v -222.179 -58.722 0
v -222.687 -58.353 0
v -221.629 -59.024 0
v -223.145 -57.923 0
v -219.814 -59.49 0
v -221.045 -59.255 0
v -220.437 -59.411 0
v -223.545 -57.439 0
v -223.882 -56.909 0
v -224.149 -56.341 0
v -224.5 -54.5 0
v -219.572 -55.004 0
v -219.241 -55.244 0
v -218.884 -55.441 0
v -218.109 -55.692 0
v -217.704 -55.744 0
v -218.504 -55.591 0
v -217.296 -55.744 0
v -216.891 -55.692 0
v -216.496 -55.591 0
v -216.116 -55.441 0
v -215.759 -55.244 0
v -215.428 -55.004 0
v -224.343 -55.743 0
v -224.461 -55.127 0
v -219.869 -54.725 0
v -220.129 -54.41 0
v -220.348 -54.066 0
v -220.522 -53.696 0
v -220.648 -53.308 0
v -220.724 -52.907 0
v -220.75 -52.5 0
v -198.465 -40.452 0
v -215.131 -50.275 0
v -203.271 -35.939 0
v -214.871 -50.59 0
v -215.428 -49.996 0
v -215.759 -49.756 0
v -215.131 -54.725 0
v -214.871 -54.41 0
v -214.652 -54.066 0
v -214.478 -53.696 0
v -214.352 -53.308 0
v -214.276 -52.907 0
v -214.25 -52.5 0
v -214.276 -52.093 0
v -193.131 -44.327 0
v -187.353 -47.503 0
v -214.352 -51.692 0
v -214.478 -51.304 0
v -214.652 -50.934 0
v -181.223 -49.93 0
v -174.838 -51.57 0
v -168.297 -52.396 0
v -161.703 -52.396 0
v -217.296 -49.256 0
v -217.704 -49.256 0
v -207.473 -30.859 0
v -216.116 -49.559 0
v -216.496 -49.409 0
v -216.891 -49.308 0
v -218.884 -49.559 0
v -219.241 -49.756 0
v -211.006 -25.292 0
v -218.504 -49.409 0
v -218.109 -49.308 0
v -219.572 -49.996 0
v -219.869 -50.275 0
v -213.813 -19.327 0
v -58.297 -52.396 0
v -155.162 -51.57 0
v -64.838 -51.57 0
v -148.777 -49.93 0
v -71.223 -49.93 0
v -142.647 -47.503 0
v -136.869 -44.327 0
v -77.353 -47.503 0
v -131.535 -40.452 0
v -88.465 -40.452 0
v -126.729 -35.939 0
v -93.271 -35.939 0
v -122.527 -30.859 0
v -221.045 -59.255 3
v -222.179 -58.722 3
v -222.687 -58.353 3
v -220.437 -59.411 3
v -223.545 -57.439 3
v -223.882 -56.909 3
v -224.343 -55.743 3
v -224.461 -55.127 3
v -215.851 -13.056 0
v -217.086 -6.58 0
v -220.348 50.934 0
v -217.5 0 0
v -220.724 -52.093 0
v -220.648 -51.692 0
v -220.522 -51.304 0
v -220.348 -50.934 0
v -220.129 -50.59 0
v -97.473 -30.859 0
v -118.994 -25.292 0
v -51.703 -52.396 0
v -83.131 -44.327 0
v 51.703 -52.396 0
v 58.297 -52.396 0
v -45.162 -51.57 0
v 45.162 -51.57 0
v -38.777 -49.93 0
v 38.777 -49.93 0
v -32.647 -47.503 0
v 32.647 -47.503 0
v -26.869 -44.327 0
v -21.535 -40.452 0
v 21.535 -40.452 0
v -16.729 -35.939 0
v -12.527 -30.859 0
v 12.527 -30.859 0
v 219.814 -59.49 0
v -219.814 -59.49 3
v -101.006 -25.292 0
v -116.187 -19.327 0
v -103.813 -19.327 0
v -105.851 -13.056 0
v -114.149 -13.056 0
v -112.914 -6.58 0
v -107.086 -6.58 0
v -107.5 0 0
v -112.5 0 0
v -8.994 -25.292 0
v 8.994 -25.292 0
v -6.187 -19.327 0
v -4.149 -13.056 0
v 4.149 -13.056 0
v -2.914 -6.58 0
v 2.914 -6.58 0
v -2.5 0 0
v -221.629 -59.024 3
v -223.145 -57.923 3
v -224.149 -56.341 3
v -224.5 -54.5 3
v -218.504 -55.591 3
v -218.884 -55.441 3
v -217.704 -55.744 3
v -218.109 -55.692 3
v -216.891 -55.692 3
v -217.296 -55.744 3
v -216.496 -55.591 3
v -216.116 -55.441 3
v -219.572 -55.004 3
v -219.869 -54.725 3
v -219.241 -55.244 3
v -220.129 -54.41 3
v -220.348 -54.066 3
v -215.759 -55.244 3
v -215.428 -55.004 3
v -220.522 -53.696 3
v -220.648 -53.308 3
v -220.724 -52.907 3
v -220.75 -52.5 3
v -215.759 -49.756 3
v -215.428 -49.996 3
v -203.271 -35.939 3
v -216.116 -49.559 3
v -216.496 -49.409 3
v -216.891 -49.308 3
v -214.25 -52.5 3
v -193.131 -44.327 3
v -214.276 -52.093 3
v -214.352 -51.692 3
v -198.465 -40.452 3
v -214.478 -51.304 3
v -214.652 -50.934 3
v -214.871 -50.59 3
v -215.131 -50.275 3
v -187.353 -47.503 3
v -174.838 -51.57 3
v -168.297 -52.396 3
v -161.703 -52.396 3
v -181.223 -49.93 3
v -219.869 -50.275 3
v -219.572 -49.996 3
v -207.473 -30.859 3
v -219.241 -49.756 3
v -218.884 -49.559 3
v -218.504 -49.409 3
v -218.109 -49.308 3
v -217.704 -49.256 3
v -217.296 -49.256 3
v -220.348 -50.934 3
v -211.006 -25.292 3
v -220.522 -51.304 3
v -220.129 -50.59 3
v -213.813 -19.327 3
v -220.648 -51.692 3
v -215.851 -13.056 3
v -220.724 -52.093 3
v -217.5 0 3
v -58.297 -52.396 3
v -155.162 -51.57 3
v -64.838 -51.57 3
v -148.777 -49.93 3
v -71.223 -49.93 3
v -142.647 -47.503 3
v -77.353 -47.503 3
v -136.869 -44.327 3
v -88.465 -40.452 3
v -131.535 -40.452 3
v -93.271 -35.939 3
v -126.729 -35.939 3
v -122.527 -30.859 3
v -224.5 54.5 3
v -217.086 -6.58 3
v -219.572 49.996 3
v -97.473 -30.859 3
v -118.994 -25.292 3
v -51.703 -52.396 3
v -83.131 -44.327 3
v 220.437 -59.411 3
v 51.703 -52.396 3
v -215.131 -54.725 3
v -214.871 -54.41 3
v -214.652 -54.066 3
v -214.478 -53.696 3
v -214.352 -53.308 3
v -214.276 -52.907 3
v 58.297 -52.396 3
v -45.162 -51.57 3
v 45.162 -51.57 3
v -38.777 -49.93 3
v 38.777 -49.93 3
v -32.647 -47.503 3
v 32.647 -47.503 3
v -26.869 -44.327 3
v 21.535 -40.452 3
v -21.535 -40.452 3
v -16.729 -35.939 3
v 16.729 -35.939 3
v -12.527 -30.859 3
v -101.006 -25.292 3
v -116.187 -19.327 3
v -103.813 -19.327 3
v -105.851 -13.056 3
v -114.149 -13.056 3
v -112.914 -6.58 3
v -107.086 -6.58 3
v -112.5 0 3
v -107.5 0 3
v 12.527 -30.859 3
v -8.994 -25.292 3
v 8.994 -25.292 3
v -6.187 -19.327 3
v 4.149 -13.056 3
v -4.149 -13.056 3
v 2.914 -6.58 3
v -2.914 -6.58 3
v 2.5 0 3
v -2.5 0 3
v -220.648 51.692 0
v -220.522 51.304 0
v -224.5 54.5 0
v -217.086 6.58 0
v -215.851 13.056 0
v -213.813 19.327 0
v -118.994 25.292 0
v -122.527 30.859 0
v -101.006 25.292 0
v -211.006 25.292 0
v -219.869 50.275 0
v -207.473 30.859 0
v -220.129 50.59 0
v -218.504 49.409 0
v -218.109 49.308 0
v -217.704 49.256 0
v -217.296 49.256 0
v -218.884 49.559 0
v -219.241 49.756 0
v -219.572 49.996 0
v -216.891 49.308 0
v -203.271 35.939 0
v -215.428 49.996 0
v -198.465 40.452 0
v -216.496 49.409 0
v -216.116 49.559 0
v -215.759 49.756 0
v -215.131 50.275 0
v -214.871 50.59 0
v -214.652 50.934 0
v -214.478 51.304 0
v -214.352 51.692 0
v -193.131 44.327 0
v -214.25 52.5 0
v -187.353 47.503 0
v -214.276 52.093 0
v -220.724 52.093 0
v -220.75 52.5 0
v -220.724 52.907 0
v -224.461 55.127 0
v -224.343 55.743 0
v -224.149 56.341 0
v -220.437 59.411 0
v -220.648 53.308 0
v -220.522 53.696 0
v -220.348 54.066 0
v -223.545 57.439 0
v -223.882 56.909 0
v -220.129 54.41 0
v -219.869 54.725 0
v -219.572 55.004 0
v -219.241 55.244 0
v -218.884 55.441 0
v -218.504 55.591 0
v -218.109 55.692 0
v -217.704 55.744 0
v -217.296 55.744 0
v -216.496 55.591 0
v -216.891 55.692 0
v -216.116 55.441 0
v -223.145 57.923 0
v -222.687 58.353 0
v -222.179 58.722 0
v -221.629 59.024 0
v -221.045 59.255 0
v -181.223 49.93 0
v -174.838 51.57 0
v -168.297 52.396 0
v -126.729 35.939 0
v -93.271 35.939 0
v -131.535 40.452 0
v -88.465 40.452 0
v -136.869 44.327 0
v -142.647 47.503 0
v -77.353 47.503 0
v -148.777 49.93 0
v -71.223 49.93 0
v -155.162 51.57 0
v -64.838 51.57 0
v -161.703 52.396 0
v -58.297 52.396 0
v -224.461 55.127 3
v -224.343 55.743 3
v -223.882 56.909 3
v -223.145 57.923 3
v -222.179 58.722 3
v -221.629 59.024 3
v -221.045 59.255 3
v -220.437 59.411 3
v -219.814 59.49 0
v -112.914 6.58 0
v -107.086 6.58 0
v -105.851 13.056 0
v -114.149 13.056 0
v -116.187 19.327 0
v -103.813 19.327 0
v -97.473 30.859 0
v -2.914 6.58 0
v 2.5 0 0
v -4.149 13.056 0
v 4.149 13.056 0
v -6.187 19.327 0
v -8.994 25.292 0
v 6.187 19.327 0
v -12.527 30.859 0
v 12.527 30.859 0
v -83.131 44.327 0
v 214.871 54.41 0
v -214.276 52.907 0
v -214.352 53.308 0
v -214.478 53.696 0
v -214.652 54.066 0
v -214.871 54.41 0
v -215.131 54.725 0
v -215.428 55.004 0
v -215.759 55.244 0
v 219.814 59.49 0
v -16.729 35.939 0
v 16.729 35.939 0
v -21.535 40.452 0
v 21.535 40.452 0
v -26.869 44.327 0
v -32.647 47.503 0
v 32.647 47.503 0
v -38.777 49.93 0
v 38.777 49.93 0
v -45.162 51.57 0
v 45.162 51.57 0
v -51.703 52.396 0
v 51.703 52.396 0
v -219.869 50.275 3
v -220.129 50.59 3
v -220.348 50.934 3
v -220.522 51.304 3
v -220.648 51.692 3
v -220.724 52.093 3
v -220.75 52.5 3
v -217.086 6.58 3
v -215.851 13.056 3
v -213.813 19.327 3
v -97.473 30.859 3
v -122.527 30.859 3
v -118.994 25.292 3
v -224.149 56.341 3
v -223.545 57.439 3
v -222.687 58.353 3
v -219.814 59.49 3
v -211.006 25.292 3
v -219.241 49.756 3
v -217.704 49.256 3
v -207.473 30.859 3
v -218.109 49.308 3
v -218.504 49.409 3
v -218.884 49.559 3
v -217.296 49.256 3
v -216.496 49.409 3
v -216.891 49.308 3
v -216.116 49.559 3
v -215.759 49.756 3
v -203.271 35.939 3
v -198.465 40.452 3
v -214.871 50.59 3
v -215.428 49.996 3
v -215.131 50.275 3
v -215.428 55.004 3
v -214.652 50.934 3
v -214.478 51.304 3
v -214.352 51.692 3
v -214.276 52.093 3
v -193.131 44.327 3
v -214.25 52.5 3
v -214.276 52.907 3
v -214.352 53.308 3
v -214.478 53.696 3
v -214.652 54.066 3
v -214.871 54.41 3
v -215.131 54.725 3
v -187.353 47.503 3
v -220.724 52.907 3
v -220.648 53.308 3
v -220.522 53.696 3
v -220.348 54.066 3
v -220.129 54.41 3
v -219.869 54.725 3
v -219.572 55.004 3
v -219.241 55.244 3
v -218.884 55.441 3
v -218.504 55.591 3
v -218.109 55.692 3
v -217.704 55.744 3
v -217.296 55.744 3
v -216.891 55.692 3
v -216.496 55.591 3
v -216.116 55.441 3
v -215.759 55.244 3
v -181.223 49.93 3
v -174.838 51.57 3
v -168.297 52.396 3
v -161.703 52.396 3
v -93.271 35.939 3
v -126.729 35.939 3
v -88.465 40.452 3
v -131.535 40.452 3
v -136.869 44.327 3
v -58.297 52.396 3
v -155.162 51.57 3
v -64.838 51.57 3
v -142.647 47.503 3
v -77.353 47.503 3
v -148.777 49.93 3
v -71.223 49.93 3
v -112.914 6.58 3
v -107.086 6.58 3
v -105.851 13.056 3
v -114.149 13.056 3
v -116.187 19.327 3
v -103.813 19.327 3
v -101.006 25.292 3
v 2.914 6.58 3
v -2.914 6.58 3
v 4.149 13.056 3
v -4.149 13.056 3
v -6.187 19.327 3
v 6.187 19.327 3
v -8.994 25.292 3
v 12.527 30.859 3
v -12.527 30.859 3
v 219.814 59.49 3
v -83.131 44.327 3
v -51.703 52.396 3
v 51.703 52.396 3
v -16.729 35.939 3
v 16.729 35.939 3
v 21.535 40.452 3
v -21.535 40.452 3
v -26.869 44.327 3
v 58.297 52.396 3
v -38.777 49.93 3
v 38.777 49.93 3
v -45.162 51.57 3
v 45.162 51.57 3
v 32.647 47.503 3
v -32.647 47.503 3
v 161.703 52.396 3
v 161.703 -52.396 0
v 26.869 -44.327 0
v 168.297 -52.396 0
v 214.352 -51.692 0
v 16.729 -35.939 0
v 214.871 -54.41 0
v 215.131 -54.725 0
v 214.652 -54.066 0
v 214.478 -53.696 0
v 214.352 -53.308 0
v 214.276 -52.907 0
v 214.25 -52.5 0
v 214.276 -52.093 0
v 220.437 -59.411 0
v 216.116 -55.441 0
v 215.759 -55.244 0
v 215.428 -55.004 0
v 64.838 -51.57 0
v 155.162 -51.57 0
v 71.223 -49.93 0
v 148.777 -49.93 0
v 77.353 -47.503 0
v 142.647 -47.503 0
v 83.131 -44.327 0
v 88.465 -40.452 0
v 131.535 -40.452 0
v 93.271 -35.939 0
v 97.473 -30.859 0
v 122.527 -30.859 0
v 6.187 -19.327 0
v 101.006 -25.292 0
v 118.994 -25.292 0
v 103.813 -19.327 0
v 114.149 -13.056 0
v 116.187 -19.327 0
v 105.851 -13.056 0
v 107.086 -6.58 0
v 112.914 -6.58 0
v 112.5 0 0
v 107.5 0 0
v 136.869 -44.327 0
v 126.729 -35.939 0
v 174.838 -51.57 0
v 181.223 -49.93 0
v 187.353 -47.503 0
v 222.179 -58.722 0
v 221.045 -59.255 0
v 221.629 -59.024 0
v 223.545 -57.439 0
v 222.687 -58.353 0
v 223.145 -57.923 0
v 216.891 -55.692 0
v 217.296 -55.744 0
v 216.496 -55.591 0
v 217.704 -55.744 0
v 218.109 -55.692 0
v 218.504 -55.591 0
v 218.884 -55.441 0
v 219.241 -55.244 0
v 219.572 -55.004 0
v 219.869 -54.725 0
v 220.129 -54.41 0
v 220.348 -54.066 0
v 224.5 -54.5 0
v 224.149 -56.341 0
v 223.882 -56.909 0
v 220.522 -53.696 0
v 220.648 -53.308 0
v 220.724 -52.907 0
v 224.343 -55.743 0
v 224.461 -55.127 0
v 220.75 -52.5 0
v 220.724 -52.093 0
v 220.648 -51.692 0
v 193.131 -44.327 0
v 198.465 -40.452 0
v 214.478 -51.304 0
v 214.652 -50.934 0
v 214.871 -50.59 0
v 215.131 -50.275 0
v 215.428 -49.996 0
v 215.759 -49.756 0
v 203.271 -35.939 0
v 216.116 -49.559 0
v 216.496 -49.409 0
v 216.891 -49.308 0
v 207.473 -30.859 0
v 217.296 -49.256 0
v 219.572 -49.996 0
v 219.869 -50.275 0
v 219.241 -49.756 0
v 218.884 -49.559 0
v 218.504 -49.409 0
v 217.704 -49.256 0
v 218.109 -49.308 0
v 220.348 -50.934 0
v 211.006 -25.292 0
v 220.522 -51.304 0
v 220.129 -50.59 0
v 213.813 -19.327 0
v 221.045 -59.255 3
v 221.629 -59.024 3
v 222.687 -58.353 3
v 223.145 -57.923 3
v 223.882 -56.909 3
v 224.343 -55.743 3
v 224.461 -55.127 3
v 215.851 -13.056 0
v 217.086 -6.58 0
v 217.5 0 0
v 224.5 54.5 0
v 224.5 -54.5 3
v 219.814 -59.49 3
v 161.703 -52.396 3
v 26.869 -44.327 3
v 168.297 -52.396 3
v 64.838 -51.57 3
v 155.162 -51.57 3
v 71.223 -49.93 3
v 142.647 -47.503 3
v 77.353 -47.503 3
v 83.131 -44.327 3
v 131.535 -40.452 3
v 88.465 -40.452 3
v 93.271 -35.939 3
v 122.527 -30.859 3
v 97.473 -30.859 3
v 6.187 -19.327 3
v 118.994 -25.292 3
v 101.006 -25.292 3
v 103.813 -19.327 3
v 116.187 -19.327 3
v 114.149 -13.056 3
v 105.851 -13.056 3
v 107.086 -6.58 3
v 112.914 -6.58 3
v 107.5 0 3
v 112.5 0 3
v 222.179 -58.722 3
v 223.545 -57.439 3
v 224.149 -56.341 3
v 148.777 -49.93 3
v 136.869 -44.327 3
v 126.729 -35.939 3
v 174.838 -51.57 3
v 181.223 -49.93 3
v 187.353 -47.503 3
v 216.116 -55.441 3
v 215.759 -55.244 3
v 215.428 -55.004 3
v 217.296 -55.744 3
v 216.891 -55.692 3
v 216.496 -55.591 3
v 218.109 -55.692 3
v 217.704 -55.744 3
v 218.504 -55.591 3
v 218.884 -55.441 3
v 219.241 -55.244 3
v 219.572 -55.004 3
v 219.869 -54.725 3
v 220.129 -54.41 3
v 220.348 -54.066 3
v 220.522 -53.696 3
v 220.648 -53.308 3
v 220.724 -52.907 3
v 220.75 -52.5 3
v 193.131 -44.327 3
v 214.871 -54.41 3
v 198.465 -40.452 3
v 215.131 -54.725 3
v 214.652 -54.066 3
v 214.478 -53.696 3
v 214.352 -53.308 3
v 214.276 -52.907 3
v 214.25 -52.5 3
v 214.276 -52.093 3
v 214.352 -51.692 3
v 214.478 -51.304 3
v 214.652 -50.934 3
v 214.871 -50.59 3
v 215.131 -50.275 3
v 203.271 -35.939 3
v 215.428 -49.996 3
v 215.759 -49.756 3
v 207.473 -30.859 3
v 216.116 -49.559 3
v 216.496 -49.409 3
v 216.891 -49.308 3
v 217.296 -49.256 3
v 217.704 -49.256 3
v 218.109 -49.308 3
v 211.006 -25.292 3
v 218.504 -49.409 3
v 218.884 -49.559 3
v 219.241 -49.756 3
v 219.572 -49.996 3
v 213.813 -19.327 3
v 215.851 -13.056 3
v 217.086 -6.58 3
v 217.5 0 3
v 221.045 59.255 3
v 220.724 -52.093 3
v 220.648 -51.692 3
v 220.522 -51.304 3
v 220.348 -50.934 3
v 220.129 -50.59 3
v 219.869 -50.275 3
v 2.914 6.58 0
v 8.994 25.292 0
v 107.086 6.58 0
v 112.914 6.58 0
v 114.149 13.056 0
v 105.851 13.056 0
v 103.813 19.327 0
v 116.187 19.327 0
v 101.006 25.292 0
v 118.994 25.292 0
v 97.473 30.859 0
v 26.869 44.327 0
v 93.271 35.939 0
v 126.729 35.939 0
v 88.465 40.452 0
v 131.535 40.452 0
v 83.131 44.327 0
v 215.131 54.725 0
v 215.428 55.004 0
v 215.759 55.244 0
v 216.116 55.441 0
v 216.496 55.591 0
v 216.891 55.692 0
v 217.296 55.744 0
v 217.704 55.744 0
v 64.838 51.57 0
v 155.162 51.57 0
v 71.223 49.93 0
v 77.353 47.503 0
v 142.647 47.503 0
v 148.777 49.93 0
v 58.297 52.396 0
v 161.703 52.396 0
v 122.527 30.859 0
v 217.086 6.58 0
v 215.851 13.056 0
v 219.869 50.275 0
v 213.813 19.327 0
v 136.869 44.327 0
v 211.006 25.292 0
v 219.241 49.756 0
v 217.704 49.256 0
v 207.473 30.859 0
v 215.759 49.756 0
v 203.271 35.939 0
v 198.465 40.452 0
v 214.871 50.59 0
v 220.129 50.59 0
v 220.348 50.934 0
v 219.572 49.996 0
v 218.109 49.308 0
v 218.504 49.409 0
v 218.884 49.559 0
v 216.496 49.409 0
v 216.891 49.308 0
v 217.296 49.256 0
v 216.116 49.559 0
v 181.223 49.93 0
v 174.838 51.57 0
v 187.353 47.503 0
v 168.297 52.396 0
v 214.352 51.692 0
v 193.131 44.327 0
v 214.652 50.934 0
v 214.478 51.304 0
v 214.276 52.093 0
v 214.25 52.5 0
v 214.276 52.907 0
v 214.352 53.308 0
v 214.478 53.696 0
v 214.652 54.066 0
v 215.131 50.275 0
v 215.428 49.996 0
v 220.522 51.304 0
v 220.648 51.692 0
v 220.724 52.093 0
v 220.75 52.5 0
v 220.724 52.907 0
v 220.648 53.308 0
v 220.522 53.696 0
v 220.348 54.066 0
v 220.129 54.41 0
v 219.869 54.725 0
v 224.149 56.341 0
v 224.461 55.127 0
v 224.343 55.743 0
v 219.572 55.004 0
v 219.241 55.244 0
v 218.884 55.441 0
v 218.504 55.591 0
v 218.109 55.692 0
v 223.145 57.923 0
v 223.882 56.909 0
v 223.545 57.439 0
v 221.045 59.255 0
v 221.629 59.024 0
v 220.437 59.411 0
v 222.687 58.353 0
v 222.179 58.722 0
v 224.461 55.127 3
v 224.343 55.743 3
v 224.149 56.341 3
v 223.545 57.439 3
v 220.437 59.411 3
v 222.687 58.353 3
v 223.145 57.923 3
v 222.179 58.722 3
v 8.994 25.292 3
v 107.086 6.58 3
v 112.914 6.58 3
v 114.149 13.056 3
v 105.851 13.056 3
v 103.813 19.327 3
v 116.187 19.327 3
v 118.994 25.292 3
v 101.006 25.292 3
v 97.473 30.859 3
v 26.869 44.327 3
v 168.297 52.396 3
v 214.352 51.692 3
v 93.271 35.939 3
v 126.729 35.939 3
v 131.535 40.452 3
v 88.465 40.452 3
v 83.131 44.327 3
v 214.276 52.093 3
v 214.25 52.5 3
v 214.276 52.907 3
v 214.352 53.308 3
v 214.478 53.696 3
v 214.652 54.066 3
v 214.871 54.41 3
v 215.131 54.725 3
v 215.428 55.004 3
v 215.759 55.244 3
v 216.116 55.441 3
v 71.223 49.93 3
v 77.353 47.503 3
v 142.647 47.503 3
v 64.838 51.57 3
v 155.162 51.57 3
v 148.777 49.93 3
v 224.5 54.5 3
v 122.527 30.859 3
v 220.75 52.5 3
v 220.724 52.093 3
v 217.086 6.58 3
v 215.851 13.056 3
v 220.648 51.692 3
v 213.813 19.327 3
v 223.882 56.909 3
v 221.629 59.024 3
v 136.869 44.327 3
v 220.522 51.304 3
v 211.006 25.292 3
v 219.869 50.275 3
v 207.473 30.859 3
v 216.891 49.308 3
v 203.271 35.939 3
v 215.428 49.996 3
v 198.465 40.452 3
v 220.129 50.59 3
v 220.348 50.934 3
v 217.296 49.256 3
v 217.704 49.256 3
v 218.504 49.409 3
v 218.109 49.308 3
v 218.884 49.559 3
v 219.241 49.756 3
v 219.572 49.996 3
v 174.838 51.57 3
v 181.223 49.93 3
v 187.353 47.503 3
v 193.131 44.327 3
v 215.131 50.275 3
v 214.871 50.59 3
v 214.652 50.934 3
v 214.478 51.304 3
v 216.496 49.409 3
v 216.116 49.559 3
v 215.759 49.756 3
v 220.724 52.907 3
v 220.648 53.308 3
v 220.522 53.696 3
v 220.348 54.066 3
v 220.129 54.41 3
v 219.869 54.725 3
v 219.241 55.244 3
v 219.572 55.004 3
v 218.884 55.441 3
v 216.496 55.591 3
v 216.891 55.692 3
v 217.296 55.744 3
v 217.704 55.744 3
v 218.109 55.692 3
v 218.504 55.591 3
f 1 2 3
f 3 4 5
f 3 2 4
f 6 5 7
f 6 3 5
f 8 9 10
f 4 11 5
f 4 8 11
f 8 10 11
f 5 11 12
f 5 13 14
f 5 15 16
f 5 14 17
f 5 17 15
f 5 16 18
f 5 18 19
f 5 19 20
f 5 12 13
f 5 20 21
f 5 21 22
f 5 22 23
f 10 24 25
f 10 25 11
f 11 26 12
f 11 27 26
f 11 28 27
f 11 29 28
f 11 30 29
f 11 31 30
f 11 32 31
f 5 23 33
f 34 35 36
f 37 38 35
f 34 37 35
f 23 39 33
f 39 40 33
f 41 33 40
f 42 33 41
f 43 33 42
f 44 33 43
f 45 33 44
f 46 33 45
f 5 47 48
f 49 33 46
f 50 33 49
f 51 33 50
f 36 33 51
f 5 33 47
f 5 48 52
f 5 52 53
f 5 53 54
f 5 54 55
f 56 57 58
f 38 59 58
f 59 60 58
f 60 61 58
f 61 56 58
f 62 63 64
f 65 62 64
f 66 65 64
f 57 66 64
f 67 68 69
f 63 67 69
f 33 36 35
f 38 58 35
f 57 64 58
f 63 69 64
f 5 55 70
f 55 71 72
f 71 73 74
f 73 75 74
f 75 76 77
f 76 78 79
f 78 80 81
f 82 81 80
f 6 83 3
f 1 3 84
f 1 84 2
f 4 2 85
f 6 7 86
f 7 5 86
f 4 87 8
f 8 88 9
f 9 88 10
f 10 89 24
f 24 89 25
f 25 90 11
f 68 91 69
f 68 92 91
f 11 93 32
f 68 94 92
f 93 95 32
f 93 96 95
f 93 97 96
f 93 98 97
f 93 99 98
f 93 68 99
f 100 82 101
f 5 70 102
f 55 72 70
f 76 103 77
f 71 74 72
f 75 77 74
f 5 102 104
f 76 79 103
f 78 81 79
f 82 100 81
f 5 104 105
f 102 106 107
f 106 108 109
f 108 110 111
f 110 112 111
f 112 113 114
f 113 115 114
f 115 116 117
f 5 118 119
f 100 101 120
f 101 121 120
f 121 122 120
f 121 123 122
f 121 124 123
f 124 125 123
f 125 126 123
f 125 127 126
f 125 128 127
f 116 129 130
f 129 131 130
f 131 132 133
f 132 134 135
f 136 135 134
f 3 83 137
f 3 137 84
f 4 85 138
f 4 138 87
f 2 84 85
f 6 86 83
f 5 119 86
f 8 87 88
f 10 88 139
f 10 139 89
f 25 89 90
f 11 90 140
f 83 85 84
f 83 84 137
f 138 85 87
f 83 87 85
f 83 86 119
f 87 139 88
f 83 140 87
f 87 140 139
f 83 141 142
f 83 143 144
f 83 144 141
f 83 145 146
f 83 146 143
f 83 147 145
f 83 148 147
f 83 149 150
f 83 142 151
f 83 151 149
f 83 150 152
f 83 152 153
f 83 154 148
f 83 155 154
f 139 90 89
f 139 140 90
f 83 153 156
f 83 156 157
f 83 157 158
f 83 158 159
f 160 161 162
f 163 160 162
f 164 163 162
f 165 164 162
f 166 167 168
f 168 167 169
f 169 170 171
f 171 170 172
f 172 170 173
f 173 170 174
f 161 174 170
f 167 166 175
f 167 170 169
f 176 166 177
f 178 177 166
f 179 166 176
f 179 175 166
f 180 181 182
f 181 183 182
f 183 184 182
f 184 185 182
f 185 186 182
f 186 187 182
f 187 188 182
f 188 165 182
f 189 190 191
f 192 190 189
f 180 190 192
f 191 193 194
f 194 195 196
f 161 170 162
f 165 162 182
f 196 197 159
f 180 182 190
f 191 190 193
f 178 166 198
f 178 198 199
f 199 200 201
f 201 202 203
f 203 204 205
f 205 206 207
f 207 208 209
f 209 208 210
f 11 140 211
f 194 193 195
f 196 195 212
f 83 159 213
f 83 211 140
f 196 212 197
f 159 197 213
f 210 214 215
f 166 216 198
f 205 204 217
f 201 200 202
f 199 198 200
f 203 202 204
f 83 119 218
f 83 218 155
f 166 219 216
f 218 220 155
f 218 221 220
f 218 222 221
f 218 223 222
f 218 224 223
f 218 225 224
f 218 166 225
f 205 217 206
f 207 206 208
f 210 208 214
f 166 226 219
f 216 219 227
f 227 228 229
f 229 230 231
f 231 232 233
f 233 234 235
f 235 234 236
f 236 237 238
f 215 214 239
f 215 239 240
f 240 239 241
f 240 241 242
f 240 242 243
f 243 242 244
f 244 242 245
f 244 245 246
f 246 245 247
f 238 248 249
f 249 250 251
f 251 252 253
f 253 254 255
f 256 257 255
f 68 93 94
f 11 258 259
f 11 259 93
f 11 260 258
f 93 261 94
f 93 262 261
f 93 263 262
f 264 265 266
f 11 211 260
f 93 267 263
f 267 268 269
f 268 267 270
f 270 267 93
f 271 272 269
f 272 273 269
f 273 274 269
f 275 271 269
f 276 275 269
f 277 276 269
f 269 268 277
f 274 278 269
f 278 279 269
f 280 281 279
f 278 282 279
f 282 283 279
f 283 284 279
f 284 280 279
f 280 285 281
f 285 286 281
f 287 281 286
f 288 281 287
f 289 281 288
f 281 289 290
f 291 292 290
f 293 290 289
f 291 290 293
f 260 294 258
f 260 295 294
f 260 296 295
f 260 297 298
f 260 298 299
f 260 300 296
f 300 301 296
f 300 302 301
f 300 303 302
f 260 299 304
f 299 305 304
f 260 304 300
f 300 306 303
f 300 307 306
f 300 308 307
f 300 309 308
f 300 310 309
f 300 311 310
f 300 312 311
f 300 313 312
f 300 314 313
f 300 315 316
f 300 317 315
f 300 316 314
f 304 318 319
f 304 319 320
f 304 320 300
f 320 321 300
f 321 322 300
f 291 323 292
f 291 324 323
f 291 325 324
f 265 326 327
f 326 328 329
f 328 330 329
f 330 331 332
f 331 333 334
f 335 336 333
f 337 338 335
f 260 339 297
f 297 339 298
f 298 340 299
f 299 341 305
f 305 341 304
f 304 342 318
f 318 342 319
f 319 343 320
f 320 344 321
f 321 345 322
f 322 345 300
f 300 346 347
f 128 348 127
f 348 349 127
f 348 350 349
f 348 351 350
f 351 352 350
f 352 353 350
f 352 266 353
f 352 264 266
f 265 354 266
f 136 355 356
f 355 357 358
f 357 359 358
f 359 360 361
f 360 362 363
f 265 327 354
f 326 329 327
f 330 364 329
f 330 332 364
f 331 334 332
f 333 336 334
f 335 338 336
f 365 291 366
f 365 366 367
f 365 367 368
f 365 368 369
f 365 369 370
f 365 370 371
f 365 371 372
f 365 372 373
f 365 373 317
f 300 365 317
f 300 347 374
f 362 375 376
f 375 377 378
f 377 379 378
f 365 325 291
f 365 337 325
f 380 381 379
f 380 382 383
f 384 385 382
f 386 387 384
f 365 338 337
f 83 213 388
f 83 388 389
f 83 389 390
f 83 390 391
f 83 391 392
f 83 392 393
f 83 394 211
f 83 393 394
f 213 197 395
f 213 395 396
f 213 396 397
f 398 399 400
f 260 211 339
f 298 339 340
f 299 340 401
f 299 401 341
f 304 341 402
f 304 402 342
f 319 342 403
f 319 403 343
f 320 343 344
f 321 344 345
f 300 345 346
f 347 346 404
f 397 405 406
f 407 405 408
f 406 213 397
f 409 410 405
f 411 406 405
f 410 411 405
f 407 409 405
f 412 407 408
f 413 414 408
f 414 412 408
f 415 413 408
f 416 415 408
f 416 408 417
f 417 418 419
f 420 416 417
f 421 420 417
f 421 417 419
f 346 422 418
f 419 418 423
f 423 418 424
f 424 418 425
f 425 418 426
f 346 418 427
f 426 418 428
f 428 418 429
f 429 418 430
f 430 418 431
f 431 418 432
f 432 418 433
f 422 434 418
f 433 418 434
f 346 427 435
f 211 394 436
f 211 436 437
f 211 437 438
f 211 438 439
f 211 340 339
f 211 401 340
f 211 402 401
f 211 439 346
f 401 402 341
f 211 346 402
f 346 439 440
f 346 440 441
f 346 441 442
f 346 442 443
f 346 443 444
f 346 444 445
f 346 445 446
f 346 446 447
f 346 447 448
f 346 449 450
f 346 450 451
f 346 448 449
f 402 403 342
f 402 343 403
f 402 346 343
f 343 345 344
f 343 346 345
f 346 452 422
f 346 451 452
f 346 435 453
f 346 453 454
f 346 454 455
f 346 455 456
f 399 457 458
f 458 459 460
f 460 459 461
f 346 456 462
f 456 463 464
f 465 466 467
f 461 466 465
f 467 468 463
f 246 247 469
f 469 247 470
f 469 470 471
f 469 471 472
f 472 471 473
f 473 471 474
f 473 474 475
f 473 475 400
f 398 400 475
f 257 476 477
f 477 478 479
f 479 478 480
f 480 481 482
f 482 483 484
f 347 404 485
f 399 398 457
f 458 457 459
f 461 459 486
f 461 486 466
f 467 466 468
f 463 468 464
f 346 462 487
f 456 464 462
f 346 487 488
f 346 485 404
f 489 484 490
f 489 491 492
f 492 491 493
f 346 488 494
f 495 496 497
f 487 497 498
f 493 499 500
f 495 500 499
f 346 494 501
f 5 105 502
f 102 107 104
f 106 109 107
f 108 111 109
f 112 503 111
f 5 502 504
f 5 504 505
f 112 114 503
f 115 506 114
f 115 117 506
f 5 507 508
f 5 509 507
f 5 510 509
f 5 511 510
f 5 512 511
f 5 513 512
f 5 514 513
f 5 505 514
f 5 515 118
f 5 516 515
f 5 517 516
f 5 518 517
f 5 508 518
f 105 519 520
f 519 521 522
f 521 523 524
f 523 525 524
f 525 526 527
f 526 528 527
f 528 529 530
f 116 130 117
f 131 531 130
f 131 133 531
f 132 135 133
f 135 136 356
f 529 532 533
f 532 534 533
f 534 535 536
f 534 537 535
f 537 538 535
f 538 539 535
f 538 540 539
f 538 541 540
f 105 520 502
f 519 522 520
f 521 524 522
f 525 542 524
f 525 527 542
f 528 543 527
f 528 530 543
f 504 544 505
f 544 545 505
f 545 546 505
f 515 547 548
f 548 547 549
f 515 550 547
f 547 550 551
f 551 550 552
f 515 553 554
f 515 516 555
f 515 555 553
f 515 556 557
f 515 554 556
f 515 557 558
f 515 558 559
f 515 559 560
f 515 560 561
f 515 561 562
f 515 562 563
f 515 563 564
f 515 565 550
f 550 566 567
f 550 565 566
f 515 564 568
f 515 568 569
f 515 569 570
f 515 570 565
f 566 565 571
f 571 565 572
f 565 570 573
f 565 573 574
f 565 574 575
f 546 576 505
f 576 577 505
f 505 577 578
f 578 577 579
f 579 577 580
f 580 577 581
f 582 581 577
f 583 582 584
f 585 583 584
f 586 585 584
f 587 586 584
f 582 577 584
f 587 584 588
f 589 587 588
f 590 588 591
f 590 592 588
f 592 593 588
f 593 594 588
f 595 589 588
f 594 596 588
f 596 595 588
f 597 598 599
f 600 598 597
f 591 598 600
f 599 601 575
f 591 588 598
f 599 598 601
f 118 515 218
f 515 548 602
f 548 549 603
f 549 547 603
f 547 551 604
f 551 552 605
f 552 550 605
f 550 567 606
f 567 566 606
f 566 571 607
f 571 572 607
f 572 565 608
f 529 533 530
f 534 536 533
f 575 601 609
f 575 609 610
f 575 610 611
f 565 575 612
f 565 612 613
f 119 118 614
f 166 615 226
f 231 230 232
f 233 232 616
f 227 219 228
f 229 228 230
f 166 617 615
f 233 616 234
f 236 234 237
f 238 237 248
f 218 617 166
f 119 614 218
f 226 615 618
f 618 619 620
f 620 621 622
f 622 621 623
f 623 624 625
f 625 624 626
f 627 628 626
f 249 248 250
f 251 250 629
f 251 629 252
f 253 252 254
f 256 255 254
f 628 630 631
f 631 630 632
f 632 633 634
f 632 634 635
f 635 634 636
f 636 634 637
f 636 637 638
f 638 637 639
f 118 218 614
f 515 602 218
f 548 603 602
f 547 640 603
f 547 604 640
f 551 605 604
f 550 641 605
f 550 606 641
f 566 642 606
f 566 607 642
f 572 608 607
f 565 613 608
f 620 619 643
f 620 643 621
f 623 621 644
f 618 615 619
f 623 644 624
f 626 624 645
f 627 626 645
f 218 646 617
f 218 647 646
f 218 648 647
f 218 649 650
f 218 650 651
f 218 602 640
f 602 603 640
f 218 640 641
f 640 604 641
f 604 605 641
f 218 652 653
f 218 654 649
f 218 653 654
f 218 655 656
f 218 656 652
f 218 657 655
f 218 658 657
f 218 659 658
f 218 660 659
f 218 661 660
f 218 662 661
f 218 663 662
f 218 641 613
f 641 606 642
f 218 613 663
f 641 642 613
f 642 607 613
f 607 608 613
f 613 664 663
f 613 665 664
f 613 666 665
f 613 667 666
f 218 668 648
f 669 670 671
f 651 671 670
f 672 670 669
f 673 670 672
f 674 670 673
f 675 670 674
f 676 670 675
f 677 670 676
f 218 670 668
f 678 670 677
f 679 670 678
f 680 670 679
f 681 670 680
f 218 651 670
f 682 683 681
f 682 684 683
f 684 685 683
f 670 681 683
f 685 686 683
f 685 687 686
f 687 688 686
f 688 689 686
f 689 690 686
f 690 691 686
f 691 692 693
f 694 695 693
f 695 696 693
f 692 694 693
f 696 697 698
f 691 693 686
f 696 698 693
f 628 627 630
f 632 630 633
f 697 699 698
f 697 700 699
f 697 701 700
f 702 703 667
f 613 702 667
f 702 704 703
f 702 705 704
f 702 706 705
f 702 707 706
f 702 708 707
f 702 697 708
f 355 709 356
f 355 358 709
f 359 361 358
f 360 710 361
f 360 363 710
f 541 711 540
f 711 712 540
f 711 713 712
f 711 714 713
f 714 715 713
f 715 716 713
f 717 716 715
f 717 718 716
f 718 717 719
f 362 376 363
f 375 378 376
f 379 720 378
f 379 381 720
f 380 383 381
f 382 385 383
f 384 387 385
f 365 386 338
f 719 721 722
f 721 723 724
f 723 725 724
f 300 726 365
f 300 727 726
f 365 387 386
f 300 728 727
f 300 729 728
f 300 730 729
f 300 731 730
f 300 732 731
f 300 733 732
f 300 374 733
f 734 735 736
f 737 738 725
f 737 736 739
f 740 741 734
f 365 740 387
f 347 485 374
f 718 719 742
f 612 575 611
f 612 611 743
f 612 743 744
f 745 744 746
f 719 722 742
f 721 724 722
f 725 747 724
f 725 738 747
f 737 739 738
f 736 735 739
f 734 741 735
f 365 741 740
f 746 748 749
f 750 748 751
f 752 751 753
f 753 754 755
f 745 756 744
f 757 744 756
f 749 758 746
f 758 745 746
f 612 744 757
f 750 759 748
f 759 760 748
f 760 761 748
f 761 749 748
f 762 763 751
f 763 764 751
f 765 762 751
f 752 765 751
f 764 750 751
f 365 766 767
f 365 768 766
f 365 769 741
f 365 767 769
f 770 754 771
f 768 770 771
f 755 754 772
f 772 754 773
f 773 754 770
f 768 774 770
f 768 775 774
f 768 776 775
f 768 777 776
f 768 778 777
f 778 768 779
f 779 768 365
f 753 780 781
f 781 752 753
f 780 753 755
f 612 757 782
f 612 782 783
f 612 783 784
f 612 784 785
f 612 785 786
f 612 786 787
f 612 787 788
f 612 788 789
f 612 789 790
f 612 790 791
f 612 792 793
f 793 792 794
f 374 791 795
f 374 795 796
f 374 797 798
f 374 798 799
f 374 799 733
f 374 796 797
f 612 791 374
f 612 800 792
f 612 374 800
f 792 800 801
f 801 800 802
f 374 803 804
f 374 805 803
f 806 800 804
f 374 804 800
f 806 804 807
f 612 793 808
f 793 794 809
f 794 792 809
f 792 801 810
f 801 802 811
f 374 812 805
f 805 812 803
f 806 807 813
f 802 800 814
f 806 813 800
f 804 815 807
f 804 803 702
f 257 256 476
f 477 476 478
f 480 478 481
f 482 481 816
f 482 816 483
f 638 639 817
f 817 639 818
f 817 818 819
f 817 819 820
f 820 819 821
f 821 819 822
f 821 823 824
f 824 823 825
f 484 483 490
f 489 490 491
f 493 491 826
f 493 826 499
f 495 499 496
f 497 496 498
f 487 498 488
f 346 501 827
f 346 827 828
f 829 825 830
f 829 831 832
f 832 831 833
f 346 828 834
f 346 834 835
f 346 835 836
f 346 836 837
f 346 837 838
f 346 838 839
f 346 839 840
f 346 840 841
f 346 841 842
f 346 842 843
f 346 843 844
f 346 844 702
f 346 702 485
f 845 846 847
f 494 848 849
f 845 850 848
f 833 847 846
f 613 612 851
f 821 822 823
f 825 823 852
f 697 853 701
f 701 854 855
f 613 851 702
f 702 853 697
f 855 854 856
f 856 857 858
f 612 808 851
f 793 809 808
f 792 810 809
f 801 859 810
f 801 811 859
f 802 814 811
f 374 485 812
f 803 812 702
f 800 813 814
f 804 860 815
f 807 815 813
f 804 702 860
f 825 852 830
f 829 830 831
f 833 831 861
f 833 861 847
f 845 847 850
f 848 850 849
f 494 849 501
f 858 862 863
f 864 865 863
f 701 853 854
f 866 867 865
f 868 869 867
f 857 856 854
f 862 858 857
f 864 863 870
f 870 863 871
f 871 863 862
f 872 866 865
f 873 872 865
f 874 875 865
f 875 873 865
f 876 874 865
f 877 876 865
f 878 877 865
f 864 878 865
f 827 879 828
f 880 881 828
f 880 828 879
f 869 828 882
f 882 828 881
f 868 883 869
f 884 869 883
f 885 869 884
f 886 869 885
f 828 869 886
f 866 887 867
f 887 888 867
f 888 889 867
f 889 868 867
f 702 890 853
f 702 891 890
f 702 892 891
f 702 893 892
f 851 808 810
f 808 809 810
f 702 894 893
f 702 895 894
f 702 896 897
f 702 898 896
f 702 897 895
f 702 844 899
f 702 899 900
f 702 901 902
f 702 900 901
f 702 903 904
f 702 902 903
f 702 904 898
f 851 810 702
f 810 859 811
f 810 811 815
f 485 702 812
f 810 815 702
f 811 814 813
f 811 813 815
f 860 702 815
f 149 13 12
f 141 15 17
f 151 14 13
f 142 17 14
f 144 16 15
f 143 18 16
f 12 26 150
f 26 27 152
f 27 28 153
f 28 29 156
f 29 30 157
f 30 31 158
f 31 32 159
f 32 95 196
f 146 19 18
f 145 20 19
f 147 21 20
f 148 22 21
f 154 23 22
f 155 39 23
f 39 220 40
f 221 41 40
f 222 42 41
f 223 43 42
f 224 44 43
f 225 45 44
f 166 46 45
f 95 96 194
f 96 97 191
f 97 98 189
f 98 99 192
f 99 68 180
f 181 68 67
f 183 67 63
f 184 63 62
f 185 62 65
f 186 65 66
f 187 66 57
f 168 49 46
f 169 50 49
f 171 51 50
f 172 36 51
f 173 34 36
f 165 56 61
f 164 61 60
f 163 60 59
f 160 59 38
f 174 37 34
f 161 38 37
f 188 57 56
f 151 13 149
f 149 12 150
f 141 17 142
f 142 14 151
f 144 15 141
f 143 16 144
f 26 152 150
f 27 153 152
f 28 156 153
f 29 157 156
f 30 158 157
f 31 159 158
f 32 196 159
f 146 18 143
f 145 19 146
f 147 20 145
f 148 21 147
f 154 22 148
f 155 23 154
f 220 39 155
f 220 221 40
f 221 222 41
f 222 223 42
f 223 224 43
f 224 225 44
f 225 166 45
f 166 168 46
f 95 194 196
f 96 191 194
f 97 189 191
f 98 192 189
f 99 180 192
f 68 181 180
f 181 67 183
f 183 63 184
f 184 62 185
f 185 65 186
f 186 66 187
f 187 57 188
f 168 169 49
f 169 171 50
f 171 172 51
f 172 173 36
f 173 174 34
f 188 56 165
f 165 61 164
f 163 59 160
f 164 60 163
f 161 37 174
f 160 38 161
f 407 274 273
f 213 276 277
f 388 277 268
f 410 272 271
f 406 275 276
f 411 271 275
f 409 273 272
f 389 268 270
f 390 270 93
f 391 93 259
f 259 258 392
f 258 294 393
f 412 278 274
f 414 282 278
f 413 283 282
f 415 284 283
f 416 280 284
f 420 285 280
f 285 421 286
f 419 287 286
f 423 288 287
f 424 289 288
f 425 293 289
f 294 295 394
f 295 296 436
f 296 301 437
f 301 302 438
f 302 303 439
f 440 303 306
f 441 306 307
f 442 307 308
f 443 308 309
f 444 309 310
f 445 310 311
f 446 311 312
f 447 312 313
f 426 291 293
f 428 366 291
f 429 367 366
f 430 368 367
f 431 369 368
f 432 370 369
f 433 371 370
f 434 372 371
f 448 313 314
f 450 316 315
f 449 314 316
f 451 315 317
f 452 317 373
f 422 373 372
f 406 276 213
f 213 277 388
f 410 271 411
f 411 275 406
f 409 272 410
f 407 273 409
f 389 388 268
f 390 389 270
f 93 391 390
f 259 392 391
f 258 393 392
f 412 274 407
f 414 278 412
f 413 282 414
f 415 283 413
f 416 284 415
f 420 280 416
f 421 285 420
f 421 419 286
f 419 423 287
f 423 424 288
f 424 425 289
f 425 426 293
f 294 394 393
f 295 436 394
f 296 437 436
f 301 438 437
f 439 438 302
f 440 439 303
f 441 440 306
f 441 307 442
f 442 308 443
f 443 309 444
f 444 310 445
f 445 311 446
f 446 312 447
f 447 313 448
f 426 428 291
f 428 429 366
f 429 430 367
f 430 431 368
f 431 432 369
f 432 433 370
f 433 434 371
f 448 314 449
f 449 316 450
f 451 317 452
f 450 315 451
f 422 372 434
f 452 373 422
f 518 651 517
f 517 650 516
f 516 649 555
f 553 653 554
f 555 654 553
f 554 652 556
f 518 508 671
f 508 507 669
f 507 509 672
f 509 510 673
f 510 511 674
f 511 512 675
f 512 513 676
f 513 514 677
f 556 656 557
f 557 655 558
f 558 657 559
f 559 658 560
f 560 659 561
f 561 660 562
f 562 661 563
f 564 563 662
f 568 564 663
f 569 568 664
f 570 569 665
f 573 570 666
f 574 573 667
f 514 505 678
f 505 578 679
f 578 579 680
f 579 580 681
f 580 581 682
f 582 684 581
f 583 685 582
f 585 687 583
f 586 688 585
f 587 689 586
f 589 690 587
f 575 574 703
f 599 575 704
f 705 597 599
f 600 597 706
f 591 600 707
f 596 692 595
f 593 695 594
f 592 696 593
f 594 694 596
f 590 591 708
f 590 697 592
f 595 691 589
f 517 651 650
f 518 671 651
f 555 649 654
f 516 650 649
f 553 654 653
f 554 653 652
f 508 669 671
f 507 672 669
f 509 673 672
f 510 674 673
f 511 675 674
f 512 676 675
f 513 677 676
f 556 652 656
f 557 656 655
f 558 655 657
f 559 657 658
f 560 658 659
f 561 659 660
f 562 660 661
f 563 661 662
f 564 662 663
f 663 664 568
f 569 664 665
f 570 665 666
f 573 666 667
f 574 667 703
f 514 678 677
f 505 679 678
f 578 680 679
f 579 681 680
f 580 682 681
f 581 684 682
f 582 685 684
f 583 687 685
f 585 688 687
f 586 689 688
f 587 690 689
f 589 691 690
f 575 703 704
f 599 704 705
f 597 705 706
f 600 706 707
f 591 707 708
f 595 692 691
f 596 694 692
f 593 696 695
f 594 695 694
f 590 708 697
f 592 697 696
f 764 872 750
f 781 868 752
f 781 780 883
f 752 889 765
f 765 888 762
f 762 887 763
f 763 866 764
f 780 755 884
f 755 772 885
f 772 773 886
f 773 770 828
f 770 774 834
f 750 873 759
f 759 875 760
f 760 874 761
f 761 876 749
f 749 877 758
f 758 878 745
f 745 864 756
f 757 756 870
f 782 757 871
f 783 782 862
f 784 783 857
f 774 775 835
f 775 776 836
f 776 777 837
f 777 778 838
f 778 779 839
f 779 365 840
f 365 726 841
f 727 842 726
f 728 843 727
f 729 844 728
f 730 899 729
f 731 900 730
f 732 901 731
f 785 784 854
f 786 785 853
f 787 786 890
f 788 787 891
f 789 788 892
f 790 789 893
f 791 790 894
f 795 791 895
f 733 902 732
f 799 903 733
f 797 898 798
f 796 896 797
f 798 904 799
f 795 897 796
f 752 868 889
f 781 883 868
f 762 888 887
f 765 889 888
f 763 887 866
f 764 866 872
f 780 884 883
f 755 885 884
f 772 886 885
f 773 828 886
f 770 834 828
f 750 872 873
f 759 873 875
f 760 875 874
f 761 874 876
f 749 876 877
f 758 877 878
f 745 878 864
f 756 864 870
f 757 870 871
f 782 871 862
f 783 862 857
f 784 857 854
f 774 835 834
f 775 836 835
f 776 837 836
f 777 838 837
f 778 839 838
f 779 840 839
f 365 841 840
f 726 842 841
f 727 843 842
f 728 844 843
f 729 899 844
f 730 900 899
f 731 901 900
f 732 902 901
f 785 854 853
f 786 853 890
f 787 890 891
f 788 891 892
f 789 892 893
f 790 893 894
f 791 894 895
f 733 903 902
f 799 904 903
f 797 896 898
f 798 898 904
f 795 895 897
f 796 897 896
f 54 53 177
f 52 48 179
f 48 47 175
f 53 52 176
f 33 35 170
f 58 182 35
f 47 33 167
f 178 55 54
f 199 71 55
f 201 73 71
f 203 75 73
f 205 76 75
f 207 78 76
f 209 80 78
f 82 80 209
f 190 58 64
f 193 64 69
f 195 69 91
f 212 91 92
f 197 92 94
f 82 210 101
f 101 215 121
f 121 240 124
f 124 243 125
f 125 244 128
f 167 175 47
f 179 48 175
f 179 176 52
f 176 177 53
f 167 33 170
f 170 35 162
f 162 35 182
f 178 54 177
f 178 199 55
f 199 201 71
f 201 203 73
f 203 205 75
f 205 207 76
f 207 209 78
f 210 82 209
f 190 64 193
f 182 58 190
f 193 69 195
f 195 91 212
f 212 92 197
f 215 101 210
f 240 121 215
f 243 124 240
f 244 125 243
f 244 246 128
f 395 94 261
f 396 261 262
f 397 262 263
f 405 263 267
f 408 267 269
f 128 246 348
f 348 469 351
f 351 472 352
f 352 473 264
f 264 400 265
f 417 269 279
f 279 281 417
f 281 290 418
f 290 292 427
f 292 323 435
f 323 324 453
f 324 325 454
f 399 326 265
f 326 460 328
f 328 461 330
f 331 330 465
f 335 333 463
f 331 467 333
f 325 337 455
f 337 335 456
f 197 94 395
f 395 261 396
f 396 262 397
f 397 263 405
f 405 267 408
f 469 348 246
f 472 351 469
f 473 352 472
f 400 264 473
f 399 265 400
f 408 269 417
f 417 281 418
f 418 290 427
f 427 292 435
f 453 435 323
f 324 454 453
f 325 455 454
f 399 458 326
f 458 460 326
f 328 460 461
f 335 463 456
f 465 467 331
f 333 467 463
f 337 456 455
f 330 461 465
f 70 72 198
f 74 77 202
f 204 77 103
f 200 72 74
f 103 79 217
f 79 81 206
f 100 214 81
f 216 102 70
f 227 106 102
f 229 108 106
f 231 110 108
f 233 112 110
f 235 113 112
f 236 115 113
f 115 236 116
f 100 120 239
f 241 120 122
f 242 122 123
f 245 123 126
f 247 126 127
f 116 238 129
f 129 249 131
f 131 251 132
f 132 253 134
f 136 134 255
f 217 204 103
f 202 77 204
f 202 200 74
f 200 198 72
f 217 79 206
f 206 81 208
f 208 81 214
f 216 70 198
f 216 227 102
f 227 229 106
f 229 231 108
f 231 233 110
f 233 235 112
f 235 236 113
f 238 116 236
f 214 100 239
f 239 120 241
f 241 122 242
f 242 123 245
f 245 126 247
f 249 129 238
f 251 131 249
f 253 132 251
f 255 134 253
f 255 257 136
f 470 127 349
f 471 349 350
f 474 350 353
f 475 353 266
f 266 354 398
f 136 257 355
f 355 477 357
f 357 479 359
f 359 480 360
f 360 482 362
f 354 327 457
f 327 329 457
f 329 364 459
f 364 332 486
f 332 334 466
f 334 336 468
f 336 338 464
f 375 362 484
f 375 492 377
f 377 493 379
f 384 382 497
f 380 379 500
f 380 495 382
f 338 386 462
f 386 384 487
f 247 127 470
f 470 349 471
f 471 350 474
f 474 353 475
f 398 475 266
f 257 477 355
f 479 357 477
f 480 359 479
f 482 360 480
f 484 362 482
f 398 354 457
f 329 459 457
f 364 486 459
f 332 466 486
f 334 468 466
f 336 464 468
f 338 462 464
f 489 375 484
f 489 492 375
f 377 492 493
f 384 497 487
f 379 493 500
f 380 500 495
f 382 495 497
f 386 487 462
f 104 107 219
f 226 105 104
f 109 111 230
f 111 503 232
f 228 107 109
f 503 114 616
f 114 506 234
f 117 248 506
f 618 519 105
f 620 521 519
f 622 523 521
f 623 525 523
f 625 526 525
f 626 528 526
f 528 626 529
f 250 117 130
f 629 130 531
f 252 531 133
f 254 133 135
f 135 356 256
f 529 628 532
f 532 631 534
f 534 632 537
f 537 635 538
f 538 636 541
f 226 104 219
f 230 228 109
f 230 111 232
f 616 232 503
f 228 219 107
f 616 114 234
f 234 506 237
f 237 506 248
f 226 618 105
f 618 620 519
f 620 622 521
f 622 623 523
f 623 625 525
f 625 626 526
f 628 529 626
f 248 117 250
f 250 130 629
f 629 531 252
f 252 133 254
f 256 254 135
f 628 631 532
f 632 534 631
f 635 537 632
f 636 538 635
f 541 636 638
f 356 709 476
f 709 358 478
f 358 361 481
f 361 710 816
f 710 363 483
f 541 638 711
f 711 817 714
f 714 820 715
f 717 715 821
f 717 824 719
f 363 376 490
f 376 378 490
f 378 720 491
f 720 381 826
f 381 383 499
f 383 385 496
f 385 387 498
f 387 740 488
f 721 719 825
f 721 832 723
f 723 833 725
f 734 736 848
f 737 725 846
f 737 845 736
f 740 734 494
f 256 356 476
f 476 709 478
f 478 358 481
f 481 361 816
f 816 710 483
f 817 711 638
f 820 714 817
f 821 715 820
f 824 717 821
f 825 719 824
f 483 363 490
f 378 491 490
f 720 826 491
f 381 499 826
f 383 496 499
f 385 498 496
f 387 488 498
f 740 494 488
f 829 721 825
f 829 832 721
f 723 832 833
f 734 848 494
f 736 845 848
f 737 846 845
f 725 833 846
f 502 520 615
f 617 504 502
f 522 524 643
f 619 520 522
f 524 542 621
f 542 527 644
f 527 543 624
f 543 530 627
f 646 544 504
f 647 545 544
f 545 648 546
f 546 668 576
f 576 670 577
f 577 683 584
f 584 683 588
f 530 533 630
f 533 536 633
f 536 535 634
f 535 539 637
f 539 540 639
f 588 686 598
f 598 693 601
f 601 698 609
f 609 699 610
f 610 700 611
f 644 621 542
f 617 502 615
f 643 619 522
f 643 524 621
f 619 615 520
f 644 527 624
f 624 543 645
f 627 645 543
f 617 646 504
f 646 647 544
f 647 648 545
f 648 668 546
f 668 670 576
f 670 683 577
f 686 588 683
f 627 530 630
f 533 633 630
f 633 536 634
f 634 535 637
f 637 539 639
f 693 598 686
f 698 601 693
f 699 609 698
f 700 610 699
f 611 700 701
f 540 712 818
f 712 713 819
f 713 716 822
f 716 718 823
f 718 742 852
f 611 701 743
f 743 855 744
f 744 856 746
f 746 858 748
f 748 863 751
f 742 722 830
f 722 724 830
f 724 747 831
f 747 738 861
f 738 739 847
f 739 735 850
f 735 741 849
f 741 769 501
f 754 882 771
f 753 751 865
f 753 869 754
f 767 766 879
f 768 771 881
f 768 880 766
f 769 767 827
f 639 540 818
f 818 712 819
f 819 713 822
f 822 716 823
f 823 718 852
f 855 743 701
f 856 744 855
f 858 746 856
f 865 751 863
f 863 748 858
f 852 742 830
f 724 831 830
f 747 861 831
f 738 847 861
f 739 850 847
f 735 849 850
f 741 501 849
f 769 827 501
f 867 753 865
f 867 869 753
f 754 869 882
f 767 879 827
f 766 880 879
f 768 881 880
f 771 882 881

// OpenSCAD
$fn = 50;

difference() {
	union() {
		hull() {
			translate(v = [-219.5, 54.5, 0]) {
				cylinder(h = 3, r = 5);
			}
			translate(v = [219.5, 54.5, 0]) {
				cylinder(h = 3, r = 5);
			}
			translate(v = [-219.5, -54.5, 0]) {
				cylinder(h = 3, r = 5);
			}
			translate(v = [219.5, -54.5, 0]) {
				cylinder(h = 3, r = 5);
			}
		}
	}
	union() {
		translate(v = [-217.5, -52.5, -100.0]) {
			cylinder(h = 200, r = 3.25);
		}
		translate(v = [-217.5, 52.5, -100.0]) {
			cylinder(h = 200, r = 3.25);
		}
		translate(v = [217.5, -52.5, -100.0]) {
			cylinder(h = 200, r = 3.25);
		}
		translate(v = [217.5, 52.5, -100.0]) {
			cylinder(h = 200, r = 3.25);
		}
		translate(v = [-217.5, -52.5, -100.0]) {
			cylinder(h = 200, r = 1.8);
		}
		translate(v = [-217.5, 52.5, -100.0]) {
			cylinder(h = 200, r = 1.8);
		}
		translate(v = [217.5, -52.5, -100.0]) {
			cylinder(h = 200, r = 1.8);
		}
		translate(v = [217.5, 52.5, -100.0]) {
			cylinder(h = 200, r = 1.8);
		}
		translate(v = [-165.0, 0, 0.0]) {
			cylinder(h = 3, r = 52.5);
		}
		translate(v = [-55.0, 0, 0.0]) {
			cylinder(h = 3, r = 52.5);
		}
		translate(v = [55.0, 0, 0.0]) {
			cylinder(h = 3, r = 52.5);
		}
		translate(v = [165.0, 0, 0.0]) {
			cylinder(h = 3, r = 52.5);
		}
	}
}
